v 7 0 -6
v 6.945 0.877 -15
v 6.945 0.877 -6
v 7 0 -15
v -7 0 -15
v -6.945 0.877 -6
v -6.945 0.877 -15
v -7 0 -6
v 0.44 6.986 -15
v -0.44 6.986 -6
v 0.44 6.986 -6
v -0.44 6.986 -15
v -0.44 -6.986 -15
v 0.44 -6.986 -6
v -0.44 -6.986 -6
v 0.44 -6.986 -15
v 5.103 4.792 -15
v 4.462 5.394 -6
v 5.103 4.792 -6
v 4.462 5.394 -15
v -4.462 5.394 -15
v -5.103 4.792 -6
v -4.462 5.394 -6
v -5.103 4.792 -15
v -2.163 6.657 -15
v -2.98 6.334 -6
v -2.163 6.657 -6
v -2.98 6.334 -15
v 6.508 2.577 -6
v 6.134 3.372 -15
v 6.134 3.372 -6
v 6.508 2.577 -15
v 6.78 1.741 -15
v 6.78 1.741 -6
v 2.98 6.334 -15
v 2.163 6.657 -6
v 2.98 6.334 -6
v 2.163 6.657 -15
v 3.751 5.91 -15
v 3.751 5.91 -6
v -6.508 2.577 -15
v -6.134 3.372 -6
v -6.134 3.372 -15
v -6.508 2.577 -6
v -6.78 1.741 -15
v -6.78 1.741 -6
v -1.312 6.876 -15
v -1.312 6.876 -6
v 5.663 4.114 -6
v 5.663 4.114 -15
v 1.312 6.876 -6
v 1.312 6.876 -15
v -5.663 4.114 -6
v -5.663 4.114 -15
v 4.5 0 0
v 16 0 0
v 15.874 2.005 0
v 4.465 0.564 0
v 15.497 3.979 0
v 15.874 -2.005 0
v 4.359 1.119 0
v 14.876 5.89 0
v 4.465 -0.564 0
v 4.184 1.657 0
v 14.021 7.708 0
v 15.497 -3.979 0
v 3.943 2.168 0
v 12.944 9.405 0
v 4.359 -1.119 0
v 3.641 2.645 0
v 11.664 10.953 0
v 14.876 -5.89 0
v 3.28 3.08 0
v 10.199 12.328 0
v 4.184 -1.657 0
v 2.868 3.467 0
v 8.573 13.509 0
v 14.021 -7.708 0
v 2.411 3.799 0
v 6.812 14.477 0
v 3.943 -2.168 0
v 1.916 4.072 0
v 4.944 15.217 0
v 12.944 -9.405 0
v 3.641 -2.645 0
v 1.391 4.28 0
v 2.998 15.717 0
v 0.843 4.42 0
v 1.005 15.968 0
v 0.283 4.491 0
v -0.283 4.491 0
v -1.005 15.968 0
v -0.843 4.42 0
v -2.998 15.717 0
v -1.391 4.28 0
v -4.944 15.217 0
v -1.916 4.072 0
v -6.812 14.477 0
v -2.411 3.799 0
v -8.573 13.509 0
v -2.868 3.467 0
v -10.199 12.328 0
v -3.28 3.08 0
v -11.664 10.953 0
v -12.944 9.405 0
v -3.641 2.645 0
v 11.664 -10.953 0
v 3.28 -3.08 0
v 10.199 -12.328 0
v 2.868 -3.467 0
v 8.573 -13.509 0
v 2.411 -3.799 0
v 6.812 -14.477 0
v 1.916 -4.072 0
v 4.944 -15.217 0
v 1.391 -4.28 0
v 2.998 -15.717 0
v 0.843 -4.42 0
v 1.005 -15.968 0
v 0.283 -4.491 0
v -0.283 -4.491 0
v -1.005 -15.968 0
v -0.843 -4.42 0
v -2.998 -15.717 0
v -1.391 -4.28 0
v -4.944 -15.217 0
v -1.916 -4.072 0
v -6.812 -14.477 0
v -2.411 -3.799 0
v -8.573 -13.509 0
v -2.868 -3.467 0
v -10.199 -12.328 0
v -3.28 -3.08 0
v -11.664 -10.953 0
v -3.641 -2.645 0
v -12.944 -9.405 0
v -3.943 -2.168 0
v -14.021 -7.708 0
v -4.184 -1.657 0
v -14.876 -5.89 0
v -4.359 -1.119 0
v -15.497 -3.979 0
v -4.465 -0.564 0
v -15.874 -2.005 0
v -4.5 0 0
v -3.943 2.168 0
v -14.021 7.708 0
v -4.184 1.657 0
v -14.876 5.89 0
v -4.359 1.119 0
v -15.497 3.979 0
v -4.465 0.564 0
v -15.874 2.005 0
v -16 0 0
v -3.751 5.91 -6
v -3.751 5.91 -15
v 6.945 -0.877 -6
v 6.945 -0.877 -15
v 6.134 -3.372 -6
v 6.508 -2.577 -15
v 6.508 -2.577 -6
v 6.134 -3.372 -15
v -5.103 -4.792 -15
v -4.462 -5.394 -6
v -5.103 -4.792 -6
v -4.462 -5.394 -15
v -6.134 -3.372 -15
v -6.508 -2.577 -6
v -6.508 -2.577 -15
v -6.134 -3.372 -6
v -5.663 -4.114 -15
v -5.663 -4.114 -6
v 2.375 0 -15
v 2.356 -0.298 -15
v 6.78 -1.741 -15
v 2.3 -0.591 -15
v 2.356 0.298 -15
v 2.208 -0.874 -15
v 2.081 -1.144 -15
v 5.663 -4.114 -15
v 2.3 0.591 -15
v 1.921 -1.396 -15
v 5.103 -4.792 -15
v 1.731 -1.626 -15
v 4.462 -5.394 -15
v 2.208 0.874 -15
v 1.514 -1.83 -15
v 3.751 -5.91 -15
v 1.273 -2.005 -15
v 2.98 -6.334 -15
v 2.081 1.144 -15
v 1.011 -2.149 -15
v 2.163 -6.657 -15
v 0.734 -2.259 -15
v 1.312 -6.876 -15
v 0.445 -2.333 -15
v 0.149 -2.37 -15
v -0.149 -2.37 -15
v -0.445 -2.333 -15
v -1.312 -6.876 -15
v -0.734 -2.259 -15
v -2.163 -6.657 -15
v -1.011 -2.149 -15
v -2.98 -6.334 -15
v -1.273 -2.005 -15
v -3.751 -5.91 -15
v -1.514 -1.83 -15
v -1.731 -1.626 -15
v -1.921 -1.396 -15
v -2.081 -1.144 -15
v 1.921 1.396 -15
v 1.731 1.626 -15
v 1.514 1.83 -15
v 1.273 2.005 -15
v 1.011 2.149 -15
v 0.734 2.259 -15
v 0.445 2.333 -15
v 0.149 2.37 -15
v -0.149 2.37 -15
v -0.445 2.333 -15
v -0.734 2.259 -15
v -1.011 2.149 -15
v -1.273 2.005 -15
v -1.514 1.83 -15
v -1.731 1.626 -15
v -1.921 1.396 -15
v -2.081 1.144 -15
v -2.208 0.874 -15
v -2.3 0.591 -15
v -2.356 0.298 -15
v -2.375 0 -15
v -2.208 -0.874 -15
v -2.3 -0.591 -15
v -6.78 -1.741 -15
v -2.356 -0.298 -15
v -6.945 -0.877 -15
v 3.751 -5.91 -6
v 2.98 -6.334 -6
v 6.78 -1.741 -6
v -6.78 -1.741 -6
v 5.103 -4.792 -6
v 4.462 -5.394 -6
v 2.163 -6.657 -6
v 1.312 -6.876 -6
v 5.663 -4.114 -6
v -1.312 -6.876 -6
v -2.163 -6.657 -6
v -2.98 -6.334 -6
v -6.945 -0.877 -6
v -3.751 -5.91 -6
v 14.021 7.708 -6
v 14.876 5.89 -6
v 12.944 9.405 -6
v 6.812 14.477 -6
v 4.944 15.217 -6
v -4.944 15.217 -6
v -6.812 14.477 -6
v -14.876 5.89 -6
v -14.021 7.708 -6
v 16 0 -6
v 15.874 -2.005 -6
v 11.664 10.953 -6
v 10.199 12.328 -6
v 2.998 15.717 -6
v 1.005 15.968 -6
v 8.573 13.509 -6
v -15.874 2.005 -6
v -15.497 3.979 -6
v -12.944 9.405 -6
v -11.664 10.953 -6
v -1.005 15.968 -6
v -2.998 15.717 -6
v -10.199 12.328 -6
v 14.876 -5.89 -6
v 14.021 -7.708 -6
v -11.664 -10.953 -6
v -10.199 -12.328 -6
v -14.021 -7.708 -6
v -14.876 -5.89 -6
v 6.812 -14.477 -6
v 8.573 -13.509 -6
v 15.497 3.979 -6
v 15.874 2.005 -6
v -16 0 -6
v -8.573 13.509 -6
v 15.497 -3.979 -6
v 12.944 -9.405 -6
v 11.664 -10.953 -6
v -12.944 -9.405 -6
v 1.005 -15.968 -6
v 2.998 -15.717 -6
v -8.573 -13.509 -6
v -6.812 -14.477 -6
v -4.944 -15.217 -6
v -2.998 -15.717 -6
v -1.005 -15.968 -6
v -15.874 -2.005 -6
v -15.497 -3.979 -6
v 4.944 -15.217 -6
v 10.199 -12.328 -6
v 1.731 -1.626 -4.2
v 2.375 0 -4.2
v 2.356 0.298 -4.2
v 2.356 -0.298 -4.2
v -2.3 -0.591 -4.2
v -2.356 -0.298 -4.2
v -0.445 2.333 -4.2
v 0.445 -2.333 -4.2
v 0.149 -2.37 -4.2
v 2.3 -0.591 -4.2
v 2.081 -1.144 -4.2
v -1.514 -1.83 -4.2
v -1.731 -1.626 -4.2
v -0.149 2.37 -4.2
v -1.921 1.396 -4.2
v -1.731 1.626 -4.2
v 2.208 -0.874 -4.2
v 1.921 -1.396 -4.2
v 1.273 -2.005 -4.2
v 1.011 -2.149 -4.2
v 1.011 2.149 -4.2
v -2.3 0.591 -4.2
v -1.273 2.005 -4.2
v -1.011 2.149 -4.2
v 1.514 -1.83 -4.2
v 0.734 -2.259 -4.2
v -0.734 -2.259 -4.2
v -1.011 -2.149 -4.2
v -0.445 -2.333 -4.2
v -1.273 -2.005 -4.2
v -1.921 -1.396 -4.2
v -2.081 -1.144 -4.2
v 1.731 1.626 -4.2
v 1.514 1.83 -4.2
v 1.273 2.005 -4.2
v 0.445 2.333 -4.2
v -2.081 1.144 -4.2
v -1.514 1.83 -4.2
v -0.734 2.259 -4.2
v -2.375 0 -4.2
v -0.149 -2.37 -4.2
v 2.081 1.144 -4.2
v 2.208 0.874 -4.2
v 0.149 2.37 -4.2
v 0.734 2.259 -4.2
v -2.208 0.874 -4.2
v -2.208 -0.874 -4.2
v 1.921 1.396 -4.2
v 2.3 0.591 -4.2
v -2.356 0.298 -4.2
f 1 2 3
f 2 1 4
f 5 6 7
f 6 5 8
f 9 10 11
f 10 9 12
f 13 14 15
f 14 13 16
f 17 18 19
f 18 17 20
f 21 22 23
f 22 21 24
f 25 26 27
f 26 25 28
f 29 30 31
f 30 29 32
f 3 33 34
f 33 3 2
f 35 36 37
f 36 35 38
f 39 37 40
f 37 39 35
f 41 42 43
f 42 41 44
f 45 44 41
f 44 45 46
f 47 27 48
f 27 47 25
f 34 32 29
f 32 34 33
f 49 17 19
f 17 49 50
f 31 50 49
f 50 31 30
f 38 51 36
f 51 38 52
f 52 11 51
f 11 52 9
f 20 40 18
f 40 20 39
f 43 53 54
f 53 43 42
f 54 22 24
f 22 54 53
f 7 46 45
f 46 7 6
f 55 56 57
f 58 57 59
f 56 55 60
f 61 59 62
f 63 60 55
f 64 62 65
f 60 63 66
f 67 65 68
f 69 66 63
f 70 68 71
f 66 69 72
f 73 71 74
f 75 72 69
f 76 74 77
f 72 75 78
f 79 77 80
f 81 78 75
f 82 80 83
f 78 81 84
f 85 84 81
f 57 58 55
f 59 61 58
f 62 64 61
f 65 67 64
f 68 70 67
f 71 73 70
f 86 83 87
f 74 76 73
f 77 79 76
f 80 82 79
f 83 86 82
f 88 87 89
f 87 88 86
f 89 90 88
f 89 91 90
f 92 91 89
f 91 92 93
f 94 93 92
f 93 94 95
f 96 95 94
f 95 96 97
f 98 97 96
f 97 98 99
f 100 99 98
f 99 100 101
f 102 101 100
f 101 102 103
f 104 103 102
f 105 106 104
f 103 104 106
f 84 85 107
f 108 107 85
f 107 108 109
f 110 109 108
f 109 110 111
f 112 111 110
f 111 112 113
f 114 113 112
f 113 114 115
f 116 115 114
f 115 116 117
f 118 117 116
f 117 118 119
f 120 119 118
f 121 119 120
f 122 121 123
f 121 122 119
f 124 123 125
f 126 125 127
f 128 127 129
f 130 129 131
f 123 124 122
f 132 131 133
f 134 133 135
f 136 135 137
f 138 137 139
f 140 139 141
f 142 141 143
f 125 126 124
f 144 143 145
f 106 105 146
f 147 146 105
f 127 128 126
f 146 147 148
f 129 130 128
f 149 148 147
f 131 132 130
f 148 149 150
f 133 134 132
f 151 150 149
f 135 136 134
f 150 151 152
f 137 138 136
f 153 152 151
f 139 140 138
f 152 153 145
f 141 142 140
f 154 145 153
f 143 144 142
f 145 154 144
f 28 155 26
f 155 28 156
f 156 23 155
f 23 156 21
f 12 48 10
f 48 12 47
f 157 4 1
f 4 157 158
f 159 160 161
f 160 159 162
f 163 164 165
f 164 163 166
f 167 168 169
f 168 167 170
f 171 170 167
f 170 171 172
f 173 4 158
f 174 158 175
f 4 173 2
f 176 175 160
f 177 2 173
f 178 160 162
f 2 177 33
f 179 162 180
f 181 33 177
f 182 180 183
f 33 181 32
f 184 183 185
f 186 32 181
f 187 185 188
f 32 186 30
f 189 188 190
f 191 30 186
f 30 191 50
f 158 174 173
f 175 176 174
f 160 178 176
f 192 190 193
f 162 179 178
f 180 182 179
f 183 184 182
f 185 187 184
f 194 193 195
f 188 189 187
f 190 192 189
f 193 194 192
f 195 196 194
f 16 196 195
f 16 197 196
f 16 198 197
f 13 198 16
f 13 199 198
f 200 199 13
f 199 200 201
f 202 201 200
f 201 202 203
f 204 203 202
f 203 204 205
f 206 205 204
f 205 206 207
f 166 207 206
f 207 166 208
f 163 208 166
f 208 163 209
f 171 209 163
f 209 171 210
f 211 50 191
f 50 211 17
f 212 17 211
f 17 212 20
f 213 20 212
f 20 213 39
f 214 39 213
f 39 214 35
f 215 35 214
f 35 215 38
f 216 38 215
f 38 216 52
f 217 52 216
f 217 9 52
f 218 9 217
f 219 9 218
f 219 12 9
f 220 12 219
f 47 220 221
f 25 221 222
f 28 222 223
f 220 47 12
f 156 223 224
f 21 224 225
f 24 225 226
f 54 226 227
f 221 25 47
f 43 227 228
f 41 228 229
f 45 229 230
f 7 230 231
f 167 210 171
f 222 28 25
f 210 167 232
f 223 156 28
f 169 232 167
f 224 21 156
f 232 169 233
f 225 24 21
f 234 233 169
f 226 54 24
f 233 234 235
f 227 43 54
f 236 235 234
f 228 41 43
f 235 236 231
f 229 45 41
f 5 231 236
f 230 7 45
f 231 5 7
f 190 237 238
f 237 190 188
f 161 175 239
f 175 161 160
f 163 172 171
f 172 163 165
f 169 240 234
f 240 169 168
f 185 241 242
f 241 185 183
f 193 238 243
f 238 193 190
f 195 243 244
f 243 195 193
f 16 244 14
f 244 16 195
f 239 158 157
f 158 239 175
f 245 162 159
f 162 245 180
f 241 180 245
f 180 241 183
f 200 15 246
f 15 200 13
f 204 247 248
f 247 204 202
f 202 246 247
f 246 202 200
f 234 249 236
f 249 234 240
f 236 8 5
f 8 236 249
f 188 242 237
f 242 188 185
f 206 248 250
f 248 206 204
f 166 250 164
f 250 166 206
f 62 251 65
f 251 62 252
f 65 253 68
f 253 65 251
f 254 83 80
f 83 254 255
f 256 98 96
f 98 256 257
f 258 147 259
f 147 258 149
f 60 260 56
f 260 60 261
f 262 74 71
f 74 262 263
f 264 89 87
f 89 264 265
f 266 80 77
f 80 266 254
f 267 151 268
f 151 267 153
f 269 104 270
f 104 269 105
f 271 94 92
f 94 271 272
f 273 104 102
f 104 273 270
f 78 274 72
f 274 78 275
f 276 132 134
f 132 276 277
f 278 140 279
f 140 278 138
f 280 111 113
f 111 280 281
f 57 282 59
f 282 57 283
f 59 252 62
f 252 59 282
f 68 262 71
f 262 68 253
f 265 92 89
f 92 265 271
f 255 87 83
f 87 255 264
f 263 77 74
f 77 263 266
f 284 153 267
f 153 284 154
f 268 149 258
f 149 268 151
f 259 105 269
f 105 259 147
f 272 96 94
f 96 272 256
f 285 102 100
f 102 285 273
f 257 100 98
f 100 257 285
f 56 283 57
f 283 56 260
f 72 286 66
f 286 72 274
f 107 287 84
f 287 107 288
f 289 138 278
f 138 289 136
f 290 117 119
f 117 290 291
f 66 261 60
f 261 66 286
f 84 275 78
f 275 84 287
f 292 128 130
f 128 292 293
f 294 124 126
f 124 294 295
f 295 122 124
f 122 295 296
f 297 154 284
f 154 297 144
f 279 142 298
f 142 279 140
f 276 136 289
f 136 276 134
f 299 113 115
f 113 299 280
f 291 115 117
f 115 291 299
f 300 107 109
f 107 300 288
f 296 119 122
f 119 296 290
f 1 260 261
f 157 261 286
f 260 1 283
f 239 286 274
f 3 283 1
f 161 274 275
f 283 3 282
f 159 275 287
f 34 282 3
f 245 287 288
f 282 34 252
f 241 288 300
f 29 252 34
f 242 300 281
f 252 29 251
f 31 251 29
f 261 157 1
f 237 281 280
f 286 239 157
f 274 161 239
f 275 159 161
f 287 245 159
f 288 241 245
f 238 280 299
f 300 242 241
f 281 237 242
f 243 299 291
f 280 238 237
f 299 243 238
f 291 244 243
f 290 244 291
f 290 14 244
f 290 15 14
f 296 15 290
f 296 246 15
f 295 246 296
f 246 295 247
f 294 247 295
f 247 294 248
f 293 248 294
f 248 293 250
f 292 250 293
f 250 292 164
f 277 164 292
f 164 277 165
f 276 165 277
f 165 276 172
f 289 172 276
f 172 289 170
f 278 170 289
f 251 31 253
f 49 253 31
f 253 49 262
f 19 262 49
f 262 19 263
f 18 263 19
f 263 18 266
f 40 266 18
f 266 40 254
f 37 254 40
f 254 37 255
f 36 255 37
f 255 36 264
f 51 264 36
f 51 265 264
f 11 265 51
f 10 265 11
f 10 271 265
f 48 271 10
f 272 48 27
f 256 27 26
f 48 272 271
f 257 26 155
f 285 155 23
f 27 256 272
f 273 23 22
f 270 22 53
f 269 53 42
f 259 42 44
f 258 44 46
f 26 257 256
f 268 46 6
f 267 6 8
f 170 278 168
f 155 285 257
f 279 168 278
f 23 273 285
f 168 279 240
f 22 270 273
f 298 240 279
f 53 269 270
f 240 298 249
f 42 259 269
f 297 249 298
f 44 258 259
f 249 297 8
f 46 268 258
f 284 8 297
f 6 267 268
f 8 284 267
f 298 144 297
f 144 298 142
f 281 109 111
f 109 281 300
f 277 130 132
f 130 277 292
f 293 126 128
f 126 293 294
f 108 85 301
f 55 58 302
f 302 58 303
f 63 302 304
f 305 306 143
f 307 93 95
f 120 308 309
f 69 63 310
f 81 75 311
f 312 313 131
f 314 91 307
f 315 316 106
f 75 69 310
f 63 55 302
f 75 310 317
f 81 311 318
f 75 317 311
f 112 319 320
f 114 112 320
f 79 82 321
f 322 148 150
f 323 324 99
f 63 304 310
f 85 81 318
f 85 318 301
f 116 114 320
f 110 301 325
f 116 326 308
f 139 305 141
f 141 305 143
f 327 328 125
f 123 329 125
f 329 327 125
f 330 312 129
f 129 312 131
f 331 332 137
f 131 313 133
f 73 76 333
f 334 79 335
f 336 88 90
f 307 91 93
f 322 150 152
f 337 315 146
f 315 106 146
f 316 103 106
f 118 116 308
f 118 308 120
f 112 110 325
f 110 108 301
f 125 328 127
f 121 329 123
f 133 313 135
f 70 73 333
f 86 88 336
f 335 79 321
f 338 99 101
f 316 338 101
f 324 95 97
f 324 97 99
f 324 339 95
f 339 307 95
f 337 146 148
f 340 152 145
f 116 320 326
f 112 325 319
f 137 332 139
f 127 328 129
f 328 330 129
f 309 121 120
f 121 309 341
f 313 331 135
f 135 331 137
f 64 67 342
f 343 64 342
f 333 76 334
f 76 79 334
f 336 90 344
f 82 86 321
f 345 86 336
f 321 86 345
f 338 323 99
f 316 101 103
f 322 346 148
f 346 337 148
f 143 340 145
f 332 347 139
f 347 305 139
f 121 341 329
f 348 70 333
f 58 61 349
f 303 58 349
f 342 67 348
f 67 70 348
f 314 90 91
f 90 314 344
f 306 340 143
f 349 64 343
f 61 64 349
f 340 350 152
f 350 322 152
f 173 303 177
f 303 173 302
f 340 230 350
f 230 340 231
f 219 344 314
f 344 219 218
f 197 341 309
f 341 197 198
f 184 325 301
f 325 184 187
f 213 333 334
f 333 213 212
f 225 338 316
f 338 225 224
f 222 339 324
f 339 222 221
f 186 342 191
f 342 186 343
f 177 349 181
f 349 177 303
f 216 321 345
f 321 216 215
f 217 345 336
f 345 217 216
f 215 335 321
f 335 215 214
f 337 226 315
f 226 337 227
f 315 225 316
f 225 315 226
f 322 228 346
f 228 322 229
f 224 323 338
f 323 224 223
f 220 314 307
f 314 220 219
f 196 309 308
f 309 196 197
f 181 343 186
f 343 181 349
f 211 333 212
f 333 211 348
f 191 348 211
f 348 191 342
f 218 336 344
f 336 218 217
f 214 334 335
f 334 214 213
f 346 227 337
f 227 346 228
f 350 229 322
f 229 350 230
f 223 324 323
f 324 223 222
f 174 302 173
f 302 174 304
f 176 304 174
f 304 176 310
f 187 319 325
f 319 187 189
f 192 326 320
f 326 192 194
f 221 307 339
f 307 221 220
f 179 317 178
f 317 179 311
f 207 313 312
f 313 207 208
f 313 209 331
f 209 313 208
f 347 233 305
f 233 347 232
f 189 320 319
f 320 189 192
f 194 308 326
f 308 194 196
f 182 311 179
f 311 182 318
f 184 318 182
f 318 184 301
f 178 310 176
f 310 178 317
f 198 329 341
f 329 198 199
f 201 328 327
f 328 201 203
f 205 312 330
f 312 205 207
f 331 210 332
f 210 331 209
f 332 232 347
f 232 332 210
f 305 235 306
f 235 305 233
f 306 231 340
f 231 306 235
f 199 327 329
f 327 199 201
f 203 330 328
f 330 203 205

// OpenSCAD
$fn = 50;


difference() {
	union() {
		translate(v = [0, 0, -15.0000000000]) {
			cylinder(h = 15, r = 7.0000000000);
		}
		translate(v = [0, 0, -6.0000000000]) {
			cylinder(h = 6, r = 16.0000000000);
		}
	}
	union() {
		translate(v = [0, 0, 0]) {
			rotate(a = [0, 0, 0]) {
				difference() {
					union() {
						#translate(v = [0, 0, -15.0000000000]) {
							cylinder(h = 15, r = 2.2500000000);
						}
						#translate(v = [0, 0, -4.2000000000]) {
							cylinder(h = 4.2000000000, r = 7.0000000000, r1 = 2.3750000000, r2 = 4.5000000000);
						}
						#translate(v = [0, 0, -15.0000000000]) {
							cylinder(h = 15, r = 2.3750000000);
						}
						#translate(v = [0, 0, -15.0000000000]) {
							cylinder(h = 15, r = 2.2500000000);
						}
					}
					union();
				}
			}
		}
	}
}
